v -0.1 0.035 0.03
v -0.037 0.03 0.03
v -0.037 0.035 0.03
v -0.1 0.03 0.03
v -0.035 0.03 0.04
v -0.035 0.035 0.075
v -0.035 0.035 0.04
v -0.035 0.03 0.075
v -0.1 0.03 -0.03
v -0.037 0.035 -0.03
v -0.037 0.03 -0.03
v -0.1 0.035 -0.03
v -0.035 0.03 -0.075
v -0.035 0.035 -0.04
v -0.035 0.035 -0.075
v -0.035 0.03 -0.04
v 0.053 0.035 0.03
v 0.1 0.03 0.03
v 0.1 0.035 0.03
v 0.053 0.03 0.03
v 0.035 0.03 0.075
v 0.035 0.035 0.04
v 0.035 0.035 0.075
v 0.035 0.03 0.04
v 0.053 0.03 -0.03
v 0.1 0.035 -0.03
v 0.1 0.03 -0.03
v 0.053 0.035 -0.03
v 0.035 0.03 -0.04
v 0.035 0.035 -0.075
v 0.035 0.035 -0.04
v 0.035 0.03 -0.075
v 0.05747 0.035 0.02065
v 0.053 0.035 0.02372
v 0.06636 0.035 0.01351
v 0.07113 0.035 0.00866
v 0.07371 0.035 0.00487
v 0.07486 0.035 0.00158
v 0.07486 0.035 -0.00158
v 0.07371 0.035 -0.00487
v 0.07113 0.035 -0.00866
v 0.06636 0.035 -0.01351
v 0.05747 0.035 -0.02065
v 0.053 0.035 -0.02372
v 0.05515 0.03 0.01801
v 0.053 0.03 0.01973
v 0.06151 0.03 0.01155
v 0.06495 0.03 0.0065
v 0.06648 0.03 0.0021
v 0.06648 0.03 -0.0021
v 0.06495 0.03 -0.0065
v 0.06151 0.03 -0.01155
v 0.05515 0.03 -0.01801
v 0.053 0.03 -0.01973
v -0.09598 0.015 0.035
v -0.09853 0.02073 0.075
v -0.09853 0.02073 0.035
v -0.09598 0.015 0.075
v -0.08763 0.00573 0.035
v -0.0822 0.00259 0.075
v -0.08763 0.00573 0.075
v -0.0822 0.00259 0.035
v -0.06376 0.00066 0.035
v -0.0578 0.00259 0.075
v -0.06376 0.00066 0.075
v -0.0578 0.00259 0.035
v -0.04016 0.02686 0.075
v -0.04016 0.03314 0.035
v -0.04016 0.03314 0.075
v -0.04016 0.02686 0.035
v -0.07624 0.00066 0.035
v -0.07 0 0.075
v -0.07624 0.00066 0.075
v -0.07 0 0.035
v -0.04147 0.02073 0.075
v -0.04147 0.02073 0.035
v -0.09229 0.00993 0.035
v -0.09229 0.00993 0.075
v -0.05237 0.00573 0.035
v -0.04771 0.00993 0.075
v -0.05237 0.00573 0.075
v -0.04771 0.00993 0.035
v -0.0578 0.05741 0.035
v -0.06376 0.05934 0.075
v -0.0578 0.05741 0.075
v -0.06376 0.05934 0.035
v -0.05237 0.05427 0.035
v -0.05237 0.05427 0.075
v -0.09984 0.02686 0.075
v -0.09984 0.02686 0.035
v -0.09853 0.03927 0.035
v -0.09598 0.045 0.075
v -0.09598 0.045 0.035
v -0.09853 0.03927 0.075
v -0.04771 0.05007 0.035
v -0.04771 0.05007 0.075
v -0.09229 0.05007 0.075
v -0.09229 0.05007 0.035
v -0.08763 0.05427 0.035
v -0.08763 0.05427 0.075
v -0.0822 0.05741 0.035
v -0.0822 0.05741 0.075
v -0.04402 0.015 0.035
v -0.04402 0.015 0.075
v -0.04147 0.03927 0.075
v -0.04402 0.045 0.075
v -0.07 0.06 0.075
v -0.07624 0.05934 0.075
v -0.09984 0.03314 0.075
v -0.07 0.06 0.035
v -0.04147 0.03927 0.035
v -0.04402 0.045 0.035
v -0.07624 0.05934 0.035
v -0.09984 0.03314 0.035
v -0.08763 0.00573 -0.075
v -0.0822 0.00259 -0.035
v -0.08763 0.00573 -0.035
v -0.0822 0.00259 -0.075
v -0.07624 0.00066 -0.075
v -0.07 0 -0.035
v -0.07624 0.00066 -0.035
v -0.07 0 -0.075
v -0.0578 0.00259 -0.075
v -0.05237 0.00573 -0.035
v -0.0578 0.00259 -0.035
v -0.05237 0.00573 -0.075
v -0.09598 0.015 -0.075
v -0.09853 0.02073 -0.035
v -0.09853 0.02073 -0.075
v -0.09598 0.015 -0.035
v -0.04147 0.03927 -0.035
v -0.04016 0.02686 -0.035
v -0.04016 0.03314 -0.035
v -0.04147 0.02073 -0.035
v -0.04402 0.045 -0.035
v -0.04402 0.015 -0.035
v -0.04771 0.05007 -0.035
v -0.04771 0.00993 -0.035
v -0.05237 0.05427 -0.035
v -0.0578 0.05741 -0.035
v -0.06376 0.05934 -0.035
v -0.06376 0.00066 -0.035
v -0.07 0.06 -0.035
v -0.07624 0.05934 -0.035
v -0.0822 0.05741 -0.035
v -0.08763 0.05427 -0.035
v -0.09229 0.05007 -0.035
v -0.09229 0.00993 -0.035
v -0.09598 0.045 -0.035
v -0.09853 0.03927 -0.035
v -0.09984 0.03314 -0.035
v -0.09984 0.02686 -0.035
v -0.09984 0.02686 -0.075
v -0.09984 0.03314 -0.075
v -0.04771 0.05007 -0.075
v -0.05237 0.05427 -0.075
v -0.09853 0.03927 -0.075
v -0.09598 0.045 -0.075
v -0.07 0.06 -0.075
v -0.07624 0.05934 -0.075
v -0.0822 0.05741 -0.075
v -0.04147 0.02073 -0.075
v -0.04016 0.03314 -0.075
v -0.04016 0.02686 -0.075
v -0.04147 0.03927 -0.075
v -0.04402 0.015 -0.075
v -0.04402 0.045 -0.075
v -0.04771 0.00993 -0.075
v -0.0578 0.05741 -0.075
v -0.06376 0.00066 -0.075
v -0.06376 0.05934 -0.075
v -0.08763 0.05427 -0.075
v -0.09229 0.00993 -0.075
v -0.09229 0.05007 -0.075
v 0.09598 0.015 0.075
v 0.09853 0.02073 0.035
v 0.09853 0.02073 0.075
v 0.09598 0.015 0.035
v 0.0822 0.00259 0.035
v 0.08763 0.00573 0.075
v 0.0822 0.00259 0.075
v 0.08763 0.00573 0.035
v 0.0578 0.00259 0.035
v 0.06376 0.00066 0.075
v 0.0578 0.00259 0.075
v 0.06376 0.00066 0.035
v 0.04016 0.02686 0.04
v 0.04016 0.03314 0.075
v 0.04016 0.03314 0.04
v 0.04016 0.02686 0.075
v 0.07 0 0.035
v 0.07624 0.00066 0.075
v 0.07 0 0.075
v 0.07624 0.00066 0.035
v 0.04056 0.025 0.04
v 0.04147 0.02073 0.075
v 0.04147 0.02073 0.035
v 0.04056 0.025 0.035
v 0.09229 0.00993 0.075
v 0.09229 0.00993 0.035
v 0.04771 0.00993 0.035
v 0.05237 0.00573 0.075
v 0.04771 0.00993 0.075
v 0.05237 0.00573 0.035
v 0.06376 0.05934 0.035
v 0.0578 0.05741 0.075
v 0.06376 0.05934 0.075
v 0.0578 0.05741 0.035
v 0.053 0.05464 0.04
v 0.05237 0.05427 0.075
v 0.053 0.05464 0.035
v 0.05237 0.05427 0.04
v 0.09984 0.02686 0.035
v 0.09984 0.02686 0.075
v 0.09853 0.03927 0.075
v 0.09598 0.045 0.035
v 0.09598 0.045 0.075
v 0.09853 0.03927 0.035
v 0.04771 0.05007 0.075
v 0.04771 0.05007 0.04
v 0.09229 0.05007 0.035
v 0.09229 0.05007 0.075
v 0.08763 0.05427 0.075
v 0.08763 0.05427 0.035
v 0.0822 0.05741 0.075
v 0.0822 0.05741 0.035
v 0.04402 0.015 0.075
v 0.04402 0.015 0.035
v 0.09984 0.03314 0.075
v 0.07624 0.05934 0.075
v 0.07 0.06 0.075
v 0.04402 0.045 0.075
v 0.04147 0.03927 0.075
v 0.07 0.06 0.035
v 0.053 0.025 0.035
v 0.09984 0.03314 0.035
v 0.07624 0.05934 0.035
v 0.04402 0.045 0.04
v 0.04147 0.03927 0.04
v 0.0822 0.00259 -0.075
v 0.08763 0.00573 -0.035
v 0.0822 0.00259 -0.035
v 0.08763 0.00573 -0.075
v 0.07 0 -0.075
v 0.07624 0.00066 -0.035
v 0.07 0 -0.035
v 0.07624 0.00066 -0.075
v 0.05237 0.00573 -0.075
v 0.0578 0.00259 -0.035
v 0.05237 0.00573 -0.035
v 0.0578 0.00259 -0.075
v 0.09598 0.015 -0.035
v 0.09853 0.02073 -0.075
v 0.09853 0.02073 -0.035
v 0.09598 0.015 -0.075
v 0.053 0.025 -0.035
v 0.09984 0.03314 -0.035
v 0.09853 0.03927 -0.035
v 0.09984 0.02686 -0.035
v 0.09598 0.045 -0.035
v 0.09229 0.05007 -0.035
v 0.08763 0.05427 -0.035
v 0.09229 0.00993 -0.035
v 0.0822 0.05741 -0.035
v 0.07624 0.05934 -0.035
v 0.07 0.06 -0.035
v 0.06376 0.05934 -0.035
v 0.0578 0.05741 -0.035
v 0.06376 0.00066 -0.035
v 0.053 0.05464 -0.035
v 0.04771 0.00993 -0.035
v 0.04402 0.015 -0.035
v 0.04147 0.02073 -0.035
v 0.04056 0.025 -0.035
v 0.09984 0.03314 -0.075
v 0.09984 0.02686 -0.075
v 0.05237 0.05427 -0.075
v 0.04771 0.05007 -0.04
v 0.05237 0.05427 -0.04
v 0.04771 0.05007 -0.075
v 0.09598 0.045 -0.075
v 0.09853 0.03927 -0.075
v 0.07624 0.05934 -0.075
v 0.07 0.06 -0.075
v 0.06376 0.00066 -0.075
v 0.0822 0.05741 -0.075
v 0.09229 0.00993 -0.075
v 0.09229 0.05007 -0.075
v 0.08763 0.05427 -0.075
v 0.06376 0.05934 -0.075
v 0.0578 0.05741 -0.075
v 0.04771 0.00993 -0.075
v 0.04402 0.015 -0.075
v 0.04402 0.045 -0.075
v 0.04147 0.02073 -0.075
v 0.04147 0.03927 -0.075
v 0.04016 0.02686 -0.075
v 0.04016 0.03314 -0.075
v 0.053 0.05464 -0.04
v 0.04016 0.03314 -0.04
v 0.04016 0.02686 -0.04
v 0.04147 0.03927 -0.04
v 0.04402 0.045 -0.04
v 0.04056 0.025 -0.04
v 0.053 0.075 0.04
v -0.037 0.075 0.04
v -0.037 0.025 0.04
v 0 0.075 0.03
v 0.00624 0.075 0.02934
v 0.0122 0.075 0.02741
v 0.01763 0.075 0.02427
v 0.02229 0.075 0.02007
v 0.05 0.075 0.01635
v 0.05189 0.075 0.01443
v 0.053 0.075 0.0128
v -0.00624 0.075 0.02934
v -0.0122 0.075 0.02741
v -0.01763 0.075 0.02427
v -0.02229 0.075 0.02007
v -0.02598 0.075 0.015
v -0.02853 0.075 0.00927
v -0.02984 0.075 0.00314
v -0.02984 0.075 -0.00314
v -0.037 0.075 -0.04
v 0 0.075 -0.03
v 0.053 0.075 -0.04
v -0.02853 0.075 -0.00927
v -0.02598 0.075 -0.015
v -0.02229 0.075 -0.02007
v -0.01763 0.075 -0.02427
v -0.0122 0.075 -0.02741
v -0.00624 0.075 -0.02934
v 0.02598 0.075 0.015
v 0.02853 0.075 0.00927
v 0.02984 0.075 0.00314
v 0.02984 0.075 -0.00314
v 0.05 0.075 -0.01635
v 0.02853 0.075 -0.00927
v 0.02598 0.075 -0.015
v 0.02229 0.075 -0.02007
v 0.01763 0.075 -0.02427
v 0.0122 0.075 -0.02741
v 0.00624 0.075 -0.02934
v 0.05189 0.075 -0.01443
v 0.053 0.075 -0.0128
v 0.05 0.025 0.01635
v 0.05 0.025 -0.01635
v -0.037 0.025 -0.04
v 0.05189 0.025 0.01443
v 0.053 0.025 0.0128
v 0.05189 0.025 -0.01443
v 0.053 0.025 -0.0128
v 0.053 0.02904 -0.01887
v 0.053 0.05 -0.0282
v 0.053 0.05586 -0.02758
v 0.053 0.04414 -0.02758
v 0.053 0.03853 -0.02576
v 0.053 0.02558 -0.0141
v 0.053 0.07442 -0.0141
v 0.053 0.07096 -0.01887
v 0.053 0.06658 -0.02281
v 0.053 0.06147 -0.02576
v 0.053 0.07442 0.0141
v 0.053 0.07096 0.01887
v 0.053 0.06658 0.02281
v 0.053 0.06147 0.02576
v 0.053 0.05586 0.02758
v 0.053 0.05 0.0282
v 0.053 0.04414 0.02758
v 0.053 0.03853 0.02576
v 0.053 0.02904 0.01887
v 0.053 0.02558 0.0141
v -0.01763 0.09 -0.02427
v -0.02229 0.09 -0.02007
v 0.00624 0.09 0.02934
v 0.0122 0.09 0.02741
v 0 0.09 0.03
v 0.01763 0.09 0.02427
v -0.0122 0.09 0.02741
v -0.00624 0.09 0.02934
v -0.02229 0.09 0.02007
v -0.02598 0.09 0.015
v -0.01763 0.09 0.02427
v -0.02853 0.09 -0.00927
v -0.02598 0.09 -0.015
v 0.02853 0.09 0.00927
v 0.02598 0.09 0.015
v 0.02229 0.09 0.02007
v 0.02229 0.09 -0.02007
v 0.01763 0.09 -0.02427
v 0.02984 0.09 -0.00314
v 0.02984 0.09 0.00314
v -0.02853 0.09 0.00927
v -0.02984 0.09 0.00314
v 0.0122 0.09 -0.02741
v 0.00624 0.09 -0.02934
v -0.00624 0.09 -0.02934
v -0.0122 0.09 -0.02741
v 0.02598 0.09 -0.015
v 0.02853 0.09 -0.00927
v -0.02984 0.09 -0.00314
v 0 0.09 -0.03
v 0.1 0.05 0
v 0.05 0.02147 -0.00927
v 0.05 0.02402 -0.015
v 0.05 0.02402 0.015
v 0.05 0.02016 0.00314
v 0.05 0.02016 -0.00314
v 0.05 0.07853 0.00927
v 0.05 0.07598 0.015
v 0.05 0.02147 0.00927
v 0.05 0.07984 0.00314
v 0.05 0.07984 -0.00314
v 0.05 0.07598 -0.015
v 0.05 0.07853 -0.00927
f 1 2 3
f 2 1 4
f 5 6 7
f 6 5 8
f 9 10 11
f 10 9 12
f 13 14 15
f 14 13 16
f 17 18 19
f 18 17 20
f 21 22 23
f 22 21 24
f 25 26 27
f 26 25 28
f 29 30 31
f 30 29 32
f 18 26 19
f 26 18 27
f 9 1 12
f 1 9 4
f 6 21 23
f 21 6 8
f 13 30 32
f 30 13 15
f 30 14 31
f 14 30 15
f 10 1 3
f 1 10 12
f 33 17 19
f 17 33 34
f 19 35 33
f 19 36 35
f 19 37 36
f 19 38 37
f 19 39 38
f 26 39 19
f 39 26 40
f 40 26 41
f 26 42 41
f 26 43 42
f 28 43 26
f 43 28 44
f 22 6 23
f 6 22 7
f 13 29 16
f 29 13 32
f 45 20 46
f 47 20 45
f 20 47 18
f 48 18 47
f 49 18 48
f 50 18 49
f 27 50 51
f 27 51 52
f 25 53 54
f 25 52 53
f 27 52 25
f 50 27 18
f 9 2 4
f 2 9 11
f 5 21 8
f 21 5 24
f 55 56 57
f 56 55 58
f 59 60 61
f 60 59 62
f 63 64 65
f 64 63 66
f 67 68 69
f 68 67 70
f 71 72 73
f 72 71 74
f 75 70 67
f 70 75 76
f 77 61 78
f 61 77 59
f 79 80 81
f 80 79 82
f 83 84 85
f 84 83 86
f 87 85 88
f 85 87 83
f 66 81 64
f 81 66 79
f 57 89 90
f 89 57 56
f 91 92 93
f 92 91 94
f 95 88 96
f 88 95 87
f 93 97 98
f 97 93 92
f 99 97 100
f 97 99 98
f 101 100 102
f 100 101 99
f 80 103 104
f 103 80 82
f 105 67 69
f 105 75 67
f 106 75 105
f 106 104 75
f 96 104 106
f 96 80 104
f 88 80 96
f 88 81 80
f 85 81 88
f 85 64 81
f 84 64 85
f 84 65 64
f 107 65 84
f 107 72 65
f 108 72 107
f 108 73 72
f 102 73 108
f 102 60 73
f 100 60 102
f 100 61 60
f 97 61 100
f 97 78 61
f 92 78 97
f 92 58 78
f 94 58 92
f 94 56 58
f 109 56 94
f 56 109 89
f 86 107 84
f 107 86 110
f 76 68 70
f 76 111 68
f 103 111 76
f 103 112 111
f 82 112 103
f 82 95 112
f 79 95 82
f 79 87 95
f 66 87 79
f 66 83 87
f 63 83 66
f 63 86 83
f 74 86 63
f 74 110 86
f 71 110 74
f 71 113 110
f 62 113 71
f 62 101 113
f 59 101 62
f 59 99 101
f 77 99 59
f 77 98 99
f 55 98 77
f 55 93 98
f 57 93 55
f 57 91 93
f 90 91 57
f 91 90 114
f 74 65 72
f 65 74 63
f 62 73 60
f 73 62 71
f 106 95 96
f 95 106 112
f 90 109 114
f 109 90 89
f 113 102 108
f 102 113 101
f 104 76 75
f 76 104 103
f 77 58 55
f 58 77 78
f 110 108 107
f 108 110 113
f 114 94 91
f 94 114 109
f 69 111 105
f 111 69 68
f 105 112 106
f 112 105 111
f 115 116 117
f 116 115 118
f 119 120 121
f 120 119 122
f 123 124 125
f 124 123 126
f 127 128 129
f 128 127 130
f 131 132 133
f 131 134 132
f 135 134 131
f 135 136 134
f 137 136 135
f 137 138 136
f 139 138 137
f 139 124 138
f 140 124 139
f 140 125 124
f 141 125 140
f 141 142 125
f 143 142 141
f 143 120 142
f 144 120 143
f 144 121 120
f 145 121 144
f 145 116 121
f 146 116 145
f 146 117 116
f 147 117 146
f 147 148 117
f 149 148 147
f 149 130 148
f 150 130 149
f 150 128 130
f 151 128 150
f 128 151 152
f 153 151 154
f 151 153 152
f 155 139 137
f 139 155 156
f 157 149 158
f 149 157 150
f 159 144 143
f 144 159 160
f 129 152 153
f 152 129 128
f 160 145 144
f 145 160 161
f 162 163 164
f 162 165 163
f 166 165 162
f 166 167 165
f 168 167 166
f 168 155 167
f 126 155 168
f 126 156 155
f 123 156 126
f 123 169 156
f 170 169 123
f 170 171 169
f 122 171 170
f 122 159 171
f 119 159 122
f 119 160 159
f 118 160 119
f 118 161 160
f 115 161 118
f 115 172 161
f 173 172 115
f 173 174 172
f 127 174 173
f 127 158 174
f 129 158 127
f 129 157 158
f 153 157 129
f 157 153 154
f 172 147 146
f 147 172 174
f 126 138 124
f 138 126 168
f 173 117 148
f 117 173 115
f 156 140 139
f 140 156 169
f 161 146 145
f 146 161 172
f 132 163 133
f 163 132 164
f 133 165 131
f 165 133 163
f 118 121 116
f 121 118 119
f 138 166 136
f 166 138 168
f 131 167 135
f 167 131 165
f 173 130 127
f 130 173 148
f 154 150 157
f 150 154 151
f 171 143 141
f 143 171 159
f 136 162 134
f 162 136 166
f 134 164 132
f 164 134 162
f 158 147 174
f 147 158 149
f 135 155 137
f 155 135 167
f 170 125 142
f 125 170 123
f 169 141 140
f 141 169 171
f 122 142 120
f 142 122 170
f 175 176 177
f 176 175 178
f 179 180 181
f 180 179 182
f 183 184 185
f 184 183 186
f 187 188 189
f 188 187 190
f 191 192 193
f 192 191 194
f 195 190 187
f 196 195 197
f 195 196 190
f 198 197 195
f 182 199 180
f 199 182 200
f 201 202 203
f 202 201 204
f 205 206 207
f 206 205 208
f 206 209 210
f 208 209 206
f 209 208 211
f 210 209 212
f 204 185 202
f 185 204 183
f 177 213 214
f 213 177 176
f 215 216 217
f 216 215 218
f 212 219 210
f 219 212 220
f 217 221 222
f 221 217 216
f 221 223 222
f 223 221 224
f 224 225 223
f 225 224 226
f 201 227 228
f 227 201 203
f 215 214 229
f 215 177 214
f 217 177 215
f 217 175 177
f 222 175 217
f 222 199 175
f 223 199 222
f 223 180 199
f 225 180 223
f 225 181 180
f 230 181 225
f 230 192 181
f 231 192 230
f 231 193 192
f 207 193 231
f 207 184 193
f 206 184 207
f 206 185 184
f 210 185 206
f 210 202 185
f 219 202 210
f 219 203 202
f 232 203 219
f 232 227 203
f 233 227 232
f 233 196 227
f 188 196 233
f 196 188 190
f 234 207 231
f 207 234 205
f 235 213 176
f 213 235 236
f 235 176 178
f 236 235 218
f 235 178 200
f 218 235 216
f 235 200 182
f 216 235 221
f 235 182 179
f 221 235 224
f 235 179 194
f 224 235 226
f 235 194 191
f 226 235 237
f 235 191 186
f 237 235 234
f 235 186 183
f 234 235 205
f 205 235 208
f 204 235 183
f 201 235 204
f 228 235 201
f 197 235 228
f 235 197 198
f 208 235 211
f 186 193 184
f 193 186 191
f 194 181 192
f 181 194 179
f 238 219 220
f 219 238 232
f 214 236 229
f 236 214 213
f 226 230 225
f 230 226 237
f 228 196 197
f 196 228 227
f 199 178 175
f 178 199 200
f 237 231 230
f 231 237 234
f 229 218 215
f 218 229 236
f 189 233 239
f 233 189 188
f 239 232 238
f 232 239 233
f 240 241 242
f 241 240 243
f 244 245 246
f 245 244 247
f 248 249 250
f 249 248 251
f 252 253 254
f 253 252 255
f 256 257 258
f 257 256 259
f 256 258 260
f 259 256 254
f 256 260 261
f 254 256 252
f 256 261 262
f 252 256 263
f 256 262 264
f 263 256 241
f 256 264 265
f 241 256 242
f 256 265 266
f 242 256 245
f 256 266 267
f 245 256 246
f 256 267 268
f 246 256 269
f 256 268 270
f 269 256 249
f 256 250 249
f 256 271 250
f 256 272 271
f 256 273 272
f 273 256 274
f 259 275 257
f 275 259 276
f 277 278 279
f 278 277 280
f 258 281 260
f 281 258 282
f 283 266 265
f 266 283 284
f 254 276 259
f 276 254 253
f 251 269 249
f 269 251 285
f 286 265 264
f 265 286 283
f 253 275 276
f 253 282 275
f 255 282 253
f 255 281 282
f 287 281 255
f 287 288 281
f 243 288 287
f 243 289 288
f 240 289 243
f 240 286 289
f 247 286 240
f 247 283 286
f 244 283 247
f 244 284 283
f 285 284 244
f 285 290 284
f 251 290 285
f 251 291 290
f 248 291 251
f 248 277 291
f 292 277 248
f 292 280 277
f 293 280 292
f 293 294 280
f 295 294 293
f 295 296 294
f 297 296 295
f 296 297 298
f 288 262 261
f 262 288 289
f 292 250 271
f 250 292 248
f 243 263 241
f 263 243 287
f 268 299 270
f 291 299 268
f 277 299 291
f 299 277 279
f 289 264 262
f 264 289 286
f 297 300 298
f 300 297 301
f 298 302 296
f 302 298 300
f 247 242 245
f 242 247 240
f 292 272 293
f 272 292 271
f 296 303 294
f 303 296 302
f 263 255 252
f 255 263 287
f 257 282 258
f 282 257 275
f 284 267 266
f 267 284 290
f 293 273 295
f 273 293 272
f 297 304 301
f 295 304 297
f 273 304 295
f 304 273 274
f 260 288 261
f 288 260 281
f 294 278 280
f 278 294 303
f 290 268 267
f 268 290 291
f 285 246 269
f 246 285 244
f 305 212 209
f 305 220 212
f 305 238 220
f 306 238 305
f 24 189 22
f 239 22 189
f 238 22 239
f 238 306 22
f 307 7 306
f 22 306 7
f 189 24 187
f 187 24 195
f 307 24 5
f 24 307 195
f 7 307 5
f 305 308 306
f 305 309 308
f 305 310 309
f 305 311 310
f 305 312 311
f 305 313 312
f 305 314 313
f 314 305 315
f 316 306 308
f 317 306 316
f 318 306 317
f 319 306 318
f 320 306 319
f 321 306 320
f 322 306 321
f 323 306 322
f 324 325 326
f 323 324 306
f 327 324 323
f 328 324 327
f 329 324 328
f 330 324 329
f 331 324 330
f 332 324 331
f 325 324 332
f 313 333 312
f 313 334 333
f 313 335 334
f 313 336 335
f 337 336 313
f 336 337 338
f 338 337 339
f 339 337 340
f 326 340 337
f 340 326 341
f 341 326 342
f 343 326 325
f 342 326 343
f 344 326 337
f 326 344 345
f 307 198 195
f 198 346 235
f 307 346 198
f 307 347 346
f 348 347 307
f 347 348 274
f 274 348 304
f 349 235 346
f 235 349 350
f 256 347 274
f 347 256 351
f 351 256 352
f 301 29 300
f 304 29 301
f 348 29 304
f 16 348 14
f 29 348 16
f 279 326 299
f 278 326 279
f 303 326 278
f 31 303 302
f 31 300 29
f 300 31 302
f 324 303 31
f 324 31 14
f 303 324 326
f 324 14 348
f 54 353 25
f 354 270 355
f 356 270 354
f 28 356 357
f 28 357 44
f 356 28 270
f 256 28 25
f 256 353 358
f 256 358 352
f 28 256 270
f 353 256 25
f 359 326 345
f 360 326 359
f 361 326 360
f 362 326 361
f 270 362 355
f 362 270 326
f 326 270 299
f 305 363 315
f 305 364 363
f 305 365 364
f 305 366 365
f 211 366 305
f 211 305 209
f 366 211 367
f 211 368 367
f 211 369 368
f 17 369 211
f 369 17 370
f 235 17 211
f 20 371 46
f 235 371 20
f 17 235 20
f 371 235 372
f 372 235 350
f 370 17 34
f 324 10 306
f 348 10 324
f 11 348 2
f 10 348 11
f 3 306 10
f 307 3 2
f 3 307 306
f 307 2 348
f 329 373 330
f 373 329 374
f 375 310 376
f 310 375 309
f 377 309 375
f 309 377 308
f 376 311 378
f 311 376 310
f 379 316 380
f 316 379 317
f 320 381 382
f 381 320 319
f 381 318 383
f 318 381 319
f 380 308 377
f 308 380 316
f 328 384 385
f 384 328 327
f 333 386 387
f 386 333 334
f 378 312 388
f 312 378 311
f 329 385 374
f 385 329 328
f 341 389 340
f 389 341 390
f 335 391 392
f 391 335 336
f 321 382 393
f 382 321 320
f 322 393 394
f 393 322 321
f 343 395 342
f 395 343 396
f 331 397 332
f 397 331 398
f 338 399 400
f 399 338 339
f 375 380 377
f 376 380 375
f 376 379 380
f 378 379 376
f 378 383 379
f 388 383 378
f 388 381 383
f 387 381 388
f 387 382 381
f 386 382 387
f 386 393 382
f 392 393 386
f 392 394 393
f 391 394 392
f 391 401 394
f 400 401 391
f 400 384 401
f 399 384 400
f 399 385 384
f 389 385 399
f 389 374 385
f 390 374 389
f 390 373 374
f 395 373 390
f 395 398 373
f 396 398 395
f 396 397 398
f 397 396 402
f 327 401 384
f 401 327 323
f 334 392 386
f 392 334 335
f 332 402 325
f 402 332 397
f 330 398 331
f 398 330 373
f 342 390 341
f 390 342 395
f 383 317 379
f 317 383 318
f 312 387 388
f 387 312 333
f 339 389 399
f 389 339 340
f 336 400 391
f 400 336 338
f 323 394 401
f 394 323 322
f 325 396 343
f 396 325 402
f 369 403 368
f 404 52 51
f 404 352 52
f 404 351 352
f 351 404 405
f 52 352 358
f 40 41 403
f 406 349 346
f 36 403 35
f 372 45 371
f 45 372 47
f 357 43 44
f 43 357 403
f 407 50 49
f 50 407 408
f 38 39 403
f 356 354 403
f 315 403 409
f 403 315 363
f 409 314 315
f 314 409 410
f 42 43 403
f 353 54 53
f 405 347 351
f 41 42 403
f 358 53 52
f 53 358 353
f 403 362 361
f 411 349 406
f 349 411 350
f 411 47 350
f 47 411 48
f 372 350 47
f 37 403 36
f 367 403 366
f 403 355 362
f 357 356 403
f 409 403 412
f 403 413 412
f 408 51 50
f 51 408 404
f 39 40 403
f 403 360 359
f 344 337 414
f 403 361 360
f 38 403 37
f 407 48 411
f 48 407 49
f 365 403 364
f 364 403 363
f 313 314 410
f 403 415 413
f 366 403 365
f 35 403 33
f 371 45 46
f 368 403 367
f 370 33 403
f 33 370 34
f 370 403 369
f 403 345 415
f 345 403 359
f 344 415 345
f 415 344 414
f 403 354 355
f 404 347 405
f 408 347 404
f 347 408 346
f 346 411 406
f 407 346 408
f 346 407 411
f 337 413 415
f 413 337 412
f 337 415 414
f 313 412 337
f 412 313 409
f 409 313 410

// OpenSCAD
module rounded_board(height, width, depth) {
    x = width / 2 - 5 ;
    y = depth / 2 - 5;
    hull() {
    translate([x, y, height/2]) cylinder(5, 5, height, true);
    translate([-x, y, height/2]) cylinder(5, 5, height, true);
    translate([x, -y, height/2]) cylinder(5, 5, height, true);
    translate([-x, -y, height/2]) cylinder(5, 5, height, true);
    }
}

module boxFR(){
    translate([30, 35, 0] )cube([50, 100, 100]);
}


module wheelFR() {
    translate([35, 70, 30]) rotate([0, 90, 0]) cylinder(40, 30, 30);
}

module robot() {
difference() {
translate([0, 0, 30]) rounded_board(5, 150, 200);
union() {
boxFR(); mirror([1, 0, 0]) boxFR();
mirror([0,1,0]){boxFR(); mirror([1, 0, 0]) boxFR();}
}
}

wheelFR(); mirror([1, 0, 0]) wheelFR();
mirror([0,1,0]){wheelFR(); mirror([1, 0, 0]) wheelFR();}

translate([0, 8, 50])cube([80, 90, 50], true);
translate([0, 0, 80]) cylinder(20, 30, 30, true);
translate([0, 50, 50])rotate([-90, 0, 0])cylinder(50,30,0);
}



scale([0.001, 0.001, 0.001]) rotate([-90, 0, 0]) rotate([0, 0, -90]) robot();
